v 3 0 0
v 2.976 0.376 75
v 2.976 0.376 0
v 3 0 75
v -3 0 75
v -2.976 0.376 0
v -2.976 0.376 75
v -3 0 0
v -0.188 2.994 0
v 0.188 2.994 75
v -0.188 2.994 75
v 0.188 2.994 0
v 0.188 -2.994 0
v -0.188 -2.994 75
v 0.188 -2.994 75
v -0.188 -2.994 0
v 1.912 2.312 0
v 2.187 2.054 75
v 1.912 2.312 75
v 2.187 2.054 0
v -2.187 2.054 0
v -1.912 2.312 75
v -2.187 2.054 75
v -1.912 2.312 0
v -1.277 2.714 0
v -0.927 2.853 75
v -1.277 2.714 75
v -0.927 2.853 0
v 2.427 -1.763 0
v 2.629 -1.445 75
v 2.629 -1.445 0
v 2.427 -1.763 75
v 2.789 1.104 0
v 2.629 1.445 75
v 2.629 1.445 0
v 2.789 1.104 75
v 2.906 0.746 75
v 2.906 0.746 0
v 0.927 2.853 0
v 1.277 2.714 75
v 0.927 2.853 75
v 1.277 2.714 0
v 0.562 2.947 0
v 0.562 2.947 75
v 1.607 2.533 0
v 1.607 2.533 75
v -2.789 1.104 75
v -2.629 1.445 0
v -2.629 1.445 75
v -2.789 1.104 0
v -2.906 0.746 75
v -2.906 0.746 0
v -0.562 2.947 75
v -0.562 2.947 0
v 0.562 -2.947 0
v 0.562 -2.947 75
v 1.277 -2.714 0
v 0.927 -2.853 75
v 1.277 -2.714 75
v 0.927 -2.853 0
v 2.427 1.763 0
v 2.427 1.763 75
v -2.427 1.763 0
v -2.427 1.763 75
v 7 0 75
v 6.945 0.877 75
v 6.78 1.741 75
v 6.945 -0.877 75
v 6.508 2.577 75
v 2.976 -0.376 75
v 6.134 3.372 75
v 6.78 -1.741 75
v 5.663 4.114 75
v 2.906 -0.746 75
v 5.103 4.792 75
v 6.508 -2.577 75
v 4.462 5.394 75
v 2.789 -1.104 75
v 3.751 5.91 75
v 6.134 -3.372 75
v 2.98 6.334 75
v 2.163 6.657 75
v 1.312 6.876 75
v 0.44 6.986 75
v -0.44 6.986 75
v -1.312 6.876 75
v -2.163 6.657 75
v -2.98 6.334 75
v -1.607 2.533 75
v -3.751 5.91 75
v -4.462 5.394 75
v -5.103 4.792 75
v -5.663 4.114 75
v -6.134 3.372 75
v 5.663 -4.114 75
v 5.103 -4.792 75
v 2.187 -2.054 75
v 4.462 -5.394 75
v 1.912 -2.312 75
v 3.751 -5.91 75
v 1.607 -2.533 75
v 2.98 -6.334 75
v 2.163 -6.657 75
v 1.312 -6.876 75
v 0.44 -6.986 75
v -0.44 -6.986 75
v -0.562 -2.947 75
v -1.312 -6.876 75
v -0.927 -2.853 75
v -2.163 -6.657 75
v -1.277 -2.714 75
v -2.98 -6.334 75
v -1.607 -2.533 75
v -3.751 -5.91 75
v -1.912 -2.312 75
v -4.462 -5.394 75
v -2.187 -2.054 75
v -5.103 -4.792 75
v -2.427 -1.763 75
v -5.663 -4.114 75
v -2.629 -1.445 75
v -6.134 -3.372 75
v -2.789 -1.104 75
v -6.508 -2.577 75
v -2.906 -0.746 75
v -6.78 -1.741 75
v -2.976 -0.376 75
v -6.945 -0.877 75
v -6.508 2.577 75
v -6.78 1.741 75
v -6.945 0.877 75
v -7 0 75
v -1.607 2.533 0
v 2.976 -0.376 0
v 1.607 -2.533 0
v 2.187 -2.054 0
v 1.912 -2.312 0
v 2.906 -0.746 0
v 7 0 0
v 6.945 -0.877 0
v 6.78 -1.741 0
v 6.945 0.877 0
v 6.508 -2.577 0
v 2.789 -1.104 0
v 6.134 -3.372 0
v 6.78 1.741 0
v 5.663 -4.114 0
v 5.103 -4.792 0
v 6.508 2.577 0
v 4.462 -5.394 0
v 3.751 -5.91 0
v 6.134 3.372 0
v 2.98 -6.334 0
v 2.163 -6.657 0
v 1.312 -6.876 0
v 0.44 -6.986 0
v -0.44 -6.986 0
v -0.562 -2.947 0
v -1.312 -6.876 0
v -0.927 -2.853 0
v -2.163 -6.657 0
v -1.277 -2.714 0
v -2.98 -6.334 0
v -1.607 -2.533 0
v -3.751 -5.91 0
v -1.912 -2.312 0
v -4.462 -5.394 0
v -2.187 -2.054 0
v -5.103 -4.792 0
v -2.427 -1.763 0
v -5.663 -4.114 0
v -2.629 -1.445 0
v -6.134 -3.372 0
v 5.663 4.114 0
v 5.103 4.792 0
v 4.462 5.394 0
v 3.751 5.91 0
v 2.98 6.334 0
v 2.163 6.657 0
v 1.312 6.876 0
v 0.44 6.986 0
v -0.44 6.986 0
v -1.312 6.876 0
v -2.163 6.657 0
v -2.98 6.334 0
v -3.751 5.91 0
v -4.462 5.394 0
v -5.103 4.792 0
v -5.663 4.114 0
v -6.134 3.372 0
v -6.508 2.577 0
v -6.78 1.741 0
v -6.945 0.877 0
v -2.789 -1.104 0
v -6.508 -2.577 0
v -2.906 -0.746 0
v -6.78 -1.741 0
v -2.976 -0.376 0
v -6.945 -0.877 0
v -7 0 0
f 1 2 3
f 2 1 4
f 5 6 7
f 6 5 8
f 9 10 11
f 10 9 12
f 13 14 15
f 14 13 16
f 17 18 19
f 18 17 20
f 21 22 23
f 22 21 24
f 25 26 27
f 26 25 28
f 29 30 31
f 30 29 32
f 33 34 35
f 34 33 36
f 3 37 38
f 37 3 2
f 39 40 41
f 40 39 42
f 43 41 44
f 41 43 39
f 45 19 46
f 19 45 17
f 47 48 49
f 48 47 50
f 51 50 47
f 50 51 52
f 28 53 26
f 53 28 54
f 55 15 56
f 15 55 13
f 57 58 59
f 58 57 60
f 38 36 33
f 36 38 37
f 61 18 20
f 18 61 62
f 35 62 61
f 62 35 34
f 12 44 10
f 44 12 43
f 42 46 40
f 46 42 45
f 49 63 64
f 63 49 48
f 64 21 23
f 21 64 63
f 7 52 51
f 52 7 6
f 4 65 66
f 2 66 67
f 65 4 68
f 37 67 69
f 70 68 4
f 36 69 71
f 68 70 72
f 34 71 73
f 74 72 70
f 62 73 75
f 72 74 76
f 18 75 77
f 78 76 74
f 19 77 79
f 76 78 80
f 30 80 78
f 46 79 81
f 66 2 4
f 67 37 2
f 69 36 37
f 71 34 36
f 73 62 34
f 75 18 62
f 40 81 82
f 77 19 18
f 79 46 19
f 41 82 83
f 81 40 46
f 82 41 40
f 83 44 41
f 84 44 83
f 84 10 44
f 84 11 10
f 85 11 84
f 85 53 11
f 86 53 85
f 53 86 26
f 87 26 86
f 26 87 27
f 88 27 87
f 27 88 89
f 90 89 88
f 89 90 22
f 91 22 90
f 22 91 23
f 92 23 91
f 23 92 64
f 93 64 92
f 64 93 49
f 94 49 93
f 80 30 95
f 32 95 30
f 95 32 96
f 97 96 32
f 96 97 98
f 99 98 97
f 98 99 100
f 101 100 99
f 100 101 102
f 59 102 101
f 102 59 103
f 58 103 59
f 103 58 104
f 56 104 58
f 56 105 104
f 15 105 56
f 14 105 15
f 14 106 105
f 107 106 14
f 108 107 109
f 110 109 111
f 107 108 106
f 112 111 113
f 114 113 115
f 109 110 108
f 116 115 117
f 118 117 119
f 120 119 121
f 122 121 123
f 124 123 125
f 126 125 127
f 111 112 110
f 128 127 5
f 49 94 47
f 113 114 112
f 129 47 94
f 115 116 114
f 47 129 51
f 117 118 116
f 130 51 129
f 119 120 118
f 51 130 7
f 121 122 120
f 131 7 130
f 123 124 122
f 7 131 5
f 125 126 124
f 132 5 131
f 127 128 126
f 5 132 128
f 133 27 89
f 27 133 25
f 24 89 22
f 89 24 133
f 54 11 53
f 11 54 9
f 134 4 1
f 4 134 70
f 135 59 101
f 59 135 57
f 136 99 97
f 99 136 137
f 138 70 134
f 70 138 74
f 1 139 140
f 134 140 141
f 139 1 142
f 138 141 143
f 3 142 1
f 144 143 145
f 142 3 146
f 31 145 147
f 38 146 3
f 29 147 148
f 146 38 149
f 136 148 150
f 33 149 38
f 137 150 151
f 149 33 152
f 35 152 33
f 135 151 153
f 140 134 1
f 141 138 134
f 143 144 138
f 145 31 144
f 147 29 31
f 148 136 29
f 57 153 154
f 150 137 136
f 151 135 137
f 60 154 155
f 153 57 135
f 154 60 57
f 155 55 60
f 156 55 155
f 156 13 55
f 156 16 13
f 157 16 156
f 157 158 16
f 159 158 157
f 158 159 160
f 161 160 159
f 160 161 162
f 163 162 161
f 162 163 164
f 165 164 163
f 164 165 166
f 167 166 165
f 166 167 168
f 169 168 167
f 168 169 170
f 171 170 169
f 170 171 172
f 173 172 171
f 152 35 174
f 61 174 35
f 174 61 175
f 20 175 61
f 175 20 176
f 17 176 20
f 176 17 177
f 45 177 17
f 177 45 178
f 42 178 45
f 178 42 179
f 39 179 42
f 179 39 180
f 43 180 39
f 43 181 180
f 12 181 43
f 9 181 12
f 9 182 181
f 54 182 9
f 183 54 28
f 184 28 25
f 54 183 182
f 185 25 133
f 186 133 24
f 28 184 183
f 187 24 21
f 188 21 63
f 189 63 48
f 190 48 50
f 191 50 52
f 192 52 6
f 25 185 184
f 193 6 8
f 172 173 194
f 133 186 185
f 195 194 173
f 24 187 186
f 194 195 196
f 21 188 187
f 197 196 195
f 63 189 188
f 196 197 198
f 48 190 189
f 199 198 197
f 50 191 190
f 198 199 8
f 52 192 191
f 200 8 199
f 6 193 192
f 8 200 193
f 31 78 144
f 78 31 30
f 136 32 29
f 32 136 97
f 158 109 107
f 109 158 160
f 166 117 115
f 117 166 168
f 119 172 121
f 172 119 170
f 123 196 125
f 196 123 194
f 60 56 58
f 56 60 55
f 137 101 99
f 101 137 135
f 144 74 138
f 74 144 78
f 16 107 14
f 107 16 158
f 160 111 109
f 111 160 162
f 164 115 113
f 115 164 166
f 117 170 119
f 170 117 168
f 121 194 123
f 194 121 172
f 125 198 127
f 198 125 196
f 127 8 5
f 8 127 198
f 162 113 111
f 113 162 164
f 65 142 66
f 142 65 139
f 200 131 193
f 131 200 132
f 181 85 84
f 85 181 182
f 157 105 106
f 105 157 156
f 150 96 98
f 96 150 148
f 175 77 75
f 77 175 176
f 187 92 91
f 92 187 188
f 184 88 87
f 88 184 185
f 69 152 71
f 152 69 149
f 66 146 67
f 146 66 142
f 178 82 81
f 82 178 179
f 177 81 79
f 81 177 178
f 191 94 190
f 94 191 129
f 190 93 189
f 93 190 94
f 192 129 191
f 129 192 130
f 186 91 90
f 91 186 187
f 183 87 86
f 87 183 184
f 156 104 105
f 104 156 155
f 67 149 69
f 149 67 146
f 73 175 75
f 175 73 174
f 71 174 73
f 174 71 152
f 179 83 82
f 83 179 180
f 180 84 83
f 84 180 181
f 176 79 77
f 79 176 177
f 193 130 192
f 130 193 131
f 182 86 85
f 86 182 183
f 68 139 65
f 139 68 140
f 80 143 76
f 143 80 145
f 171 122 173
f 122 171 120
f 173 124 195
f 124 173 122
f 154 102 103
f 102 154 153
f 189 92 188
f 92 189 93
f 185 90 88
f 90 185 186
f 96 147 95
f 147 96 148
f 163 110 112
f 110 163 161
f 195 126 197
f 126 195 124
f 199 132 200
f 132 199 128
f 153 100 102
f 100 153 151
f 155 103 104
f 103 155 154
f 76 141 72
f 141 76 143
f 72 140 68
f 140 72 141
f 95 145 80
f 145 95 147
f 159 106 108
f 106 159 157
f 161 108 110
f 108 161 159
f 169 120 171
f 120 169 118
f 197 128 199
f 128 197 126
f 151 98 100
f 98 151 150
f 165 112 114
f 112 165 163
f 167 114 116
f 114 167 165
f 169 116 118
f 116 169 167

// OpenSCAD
$fn = 50;


difference() {
	union() {
		cylinder(h = 75, r = 7.0000000000);
	}
	union() {
		cylinder(h = 75, r = 3.0000000000);
		cylinder(h = 75, r = 3.0000000000);
		cylinder(h = 75, r = 1.5000000000);
		cylinder(h = 75, r = 1.5000000000);
		cylinder(h = 75, r = 1.5000000000);
		cylinder(h = 75, r = 1.5000000000);
		cylinder(h = 75, r = 1.5000000000);
		cylinder(h = 75, r = 1.5000000000);
	}
}
